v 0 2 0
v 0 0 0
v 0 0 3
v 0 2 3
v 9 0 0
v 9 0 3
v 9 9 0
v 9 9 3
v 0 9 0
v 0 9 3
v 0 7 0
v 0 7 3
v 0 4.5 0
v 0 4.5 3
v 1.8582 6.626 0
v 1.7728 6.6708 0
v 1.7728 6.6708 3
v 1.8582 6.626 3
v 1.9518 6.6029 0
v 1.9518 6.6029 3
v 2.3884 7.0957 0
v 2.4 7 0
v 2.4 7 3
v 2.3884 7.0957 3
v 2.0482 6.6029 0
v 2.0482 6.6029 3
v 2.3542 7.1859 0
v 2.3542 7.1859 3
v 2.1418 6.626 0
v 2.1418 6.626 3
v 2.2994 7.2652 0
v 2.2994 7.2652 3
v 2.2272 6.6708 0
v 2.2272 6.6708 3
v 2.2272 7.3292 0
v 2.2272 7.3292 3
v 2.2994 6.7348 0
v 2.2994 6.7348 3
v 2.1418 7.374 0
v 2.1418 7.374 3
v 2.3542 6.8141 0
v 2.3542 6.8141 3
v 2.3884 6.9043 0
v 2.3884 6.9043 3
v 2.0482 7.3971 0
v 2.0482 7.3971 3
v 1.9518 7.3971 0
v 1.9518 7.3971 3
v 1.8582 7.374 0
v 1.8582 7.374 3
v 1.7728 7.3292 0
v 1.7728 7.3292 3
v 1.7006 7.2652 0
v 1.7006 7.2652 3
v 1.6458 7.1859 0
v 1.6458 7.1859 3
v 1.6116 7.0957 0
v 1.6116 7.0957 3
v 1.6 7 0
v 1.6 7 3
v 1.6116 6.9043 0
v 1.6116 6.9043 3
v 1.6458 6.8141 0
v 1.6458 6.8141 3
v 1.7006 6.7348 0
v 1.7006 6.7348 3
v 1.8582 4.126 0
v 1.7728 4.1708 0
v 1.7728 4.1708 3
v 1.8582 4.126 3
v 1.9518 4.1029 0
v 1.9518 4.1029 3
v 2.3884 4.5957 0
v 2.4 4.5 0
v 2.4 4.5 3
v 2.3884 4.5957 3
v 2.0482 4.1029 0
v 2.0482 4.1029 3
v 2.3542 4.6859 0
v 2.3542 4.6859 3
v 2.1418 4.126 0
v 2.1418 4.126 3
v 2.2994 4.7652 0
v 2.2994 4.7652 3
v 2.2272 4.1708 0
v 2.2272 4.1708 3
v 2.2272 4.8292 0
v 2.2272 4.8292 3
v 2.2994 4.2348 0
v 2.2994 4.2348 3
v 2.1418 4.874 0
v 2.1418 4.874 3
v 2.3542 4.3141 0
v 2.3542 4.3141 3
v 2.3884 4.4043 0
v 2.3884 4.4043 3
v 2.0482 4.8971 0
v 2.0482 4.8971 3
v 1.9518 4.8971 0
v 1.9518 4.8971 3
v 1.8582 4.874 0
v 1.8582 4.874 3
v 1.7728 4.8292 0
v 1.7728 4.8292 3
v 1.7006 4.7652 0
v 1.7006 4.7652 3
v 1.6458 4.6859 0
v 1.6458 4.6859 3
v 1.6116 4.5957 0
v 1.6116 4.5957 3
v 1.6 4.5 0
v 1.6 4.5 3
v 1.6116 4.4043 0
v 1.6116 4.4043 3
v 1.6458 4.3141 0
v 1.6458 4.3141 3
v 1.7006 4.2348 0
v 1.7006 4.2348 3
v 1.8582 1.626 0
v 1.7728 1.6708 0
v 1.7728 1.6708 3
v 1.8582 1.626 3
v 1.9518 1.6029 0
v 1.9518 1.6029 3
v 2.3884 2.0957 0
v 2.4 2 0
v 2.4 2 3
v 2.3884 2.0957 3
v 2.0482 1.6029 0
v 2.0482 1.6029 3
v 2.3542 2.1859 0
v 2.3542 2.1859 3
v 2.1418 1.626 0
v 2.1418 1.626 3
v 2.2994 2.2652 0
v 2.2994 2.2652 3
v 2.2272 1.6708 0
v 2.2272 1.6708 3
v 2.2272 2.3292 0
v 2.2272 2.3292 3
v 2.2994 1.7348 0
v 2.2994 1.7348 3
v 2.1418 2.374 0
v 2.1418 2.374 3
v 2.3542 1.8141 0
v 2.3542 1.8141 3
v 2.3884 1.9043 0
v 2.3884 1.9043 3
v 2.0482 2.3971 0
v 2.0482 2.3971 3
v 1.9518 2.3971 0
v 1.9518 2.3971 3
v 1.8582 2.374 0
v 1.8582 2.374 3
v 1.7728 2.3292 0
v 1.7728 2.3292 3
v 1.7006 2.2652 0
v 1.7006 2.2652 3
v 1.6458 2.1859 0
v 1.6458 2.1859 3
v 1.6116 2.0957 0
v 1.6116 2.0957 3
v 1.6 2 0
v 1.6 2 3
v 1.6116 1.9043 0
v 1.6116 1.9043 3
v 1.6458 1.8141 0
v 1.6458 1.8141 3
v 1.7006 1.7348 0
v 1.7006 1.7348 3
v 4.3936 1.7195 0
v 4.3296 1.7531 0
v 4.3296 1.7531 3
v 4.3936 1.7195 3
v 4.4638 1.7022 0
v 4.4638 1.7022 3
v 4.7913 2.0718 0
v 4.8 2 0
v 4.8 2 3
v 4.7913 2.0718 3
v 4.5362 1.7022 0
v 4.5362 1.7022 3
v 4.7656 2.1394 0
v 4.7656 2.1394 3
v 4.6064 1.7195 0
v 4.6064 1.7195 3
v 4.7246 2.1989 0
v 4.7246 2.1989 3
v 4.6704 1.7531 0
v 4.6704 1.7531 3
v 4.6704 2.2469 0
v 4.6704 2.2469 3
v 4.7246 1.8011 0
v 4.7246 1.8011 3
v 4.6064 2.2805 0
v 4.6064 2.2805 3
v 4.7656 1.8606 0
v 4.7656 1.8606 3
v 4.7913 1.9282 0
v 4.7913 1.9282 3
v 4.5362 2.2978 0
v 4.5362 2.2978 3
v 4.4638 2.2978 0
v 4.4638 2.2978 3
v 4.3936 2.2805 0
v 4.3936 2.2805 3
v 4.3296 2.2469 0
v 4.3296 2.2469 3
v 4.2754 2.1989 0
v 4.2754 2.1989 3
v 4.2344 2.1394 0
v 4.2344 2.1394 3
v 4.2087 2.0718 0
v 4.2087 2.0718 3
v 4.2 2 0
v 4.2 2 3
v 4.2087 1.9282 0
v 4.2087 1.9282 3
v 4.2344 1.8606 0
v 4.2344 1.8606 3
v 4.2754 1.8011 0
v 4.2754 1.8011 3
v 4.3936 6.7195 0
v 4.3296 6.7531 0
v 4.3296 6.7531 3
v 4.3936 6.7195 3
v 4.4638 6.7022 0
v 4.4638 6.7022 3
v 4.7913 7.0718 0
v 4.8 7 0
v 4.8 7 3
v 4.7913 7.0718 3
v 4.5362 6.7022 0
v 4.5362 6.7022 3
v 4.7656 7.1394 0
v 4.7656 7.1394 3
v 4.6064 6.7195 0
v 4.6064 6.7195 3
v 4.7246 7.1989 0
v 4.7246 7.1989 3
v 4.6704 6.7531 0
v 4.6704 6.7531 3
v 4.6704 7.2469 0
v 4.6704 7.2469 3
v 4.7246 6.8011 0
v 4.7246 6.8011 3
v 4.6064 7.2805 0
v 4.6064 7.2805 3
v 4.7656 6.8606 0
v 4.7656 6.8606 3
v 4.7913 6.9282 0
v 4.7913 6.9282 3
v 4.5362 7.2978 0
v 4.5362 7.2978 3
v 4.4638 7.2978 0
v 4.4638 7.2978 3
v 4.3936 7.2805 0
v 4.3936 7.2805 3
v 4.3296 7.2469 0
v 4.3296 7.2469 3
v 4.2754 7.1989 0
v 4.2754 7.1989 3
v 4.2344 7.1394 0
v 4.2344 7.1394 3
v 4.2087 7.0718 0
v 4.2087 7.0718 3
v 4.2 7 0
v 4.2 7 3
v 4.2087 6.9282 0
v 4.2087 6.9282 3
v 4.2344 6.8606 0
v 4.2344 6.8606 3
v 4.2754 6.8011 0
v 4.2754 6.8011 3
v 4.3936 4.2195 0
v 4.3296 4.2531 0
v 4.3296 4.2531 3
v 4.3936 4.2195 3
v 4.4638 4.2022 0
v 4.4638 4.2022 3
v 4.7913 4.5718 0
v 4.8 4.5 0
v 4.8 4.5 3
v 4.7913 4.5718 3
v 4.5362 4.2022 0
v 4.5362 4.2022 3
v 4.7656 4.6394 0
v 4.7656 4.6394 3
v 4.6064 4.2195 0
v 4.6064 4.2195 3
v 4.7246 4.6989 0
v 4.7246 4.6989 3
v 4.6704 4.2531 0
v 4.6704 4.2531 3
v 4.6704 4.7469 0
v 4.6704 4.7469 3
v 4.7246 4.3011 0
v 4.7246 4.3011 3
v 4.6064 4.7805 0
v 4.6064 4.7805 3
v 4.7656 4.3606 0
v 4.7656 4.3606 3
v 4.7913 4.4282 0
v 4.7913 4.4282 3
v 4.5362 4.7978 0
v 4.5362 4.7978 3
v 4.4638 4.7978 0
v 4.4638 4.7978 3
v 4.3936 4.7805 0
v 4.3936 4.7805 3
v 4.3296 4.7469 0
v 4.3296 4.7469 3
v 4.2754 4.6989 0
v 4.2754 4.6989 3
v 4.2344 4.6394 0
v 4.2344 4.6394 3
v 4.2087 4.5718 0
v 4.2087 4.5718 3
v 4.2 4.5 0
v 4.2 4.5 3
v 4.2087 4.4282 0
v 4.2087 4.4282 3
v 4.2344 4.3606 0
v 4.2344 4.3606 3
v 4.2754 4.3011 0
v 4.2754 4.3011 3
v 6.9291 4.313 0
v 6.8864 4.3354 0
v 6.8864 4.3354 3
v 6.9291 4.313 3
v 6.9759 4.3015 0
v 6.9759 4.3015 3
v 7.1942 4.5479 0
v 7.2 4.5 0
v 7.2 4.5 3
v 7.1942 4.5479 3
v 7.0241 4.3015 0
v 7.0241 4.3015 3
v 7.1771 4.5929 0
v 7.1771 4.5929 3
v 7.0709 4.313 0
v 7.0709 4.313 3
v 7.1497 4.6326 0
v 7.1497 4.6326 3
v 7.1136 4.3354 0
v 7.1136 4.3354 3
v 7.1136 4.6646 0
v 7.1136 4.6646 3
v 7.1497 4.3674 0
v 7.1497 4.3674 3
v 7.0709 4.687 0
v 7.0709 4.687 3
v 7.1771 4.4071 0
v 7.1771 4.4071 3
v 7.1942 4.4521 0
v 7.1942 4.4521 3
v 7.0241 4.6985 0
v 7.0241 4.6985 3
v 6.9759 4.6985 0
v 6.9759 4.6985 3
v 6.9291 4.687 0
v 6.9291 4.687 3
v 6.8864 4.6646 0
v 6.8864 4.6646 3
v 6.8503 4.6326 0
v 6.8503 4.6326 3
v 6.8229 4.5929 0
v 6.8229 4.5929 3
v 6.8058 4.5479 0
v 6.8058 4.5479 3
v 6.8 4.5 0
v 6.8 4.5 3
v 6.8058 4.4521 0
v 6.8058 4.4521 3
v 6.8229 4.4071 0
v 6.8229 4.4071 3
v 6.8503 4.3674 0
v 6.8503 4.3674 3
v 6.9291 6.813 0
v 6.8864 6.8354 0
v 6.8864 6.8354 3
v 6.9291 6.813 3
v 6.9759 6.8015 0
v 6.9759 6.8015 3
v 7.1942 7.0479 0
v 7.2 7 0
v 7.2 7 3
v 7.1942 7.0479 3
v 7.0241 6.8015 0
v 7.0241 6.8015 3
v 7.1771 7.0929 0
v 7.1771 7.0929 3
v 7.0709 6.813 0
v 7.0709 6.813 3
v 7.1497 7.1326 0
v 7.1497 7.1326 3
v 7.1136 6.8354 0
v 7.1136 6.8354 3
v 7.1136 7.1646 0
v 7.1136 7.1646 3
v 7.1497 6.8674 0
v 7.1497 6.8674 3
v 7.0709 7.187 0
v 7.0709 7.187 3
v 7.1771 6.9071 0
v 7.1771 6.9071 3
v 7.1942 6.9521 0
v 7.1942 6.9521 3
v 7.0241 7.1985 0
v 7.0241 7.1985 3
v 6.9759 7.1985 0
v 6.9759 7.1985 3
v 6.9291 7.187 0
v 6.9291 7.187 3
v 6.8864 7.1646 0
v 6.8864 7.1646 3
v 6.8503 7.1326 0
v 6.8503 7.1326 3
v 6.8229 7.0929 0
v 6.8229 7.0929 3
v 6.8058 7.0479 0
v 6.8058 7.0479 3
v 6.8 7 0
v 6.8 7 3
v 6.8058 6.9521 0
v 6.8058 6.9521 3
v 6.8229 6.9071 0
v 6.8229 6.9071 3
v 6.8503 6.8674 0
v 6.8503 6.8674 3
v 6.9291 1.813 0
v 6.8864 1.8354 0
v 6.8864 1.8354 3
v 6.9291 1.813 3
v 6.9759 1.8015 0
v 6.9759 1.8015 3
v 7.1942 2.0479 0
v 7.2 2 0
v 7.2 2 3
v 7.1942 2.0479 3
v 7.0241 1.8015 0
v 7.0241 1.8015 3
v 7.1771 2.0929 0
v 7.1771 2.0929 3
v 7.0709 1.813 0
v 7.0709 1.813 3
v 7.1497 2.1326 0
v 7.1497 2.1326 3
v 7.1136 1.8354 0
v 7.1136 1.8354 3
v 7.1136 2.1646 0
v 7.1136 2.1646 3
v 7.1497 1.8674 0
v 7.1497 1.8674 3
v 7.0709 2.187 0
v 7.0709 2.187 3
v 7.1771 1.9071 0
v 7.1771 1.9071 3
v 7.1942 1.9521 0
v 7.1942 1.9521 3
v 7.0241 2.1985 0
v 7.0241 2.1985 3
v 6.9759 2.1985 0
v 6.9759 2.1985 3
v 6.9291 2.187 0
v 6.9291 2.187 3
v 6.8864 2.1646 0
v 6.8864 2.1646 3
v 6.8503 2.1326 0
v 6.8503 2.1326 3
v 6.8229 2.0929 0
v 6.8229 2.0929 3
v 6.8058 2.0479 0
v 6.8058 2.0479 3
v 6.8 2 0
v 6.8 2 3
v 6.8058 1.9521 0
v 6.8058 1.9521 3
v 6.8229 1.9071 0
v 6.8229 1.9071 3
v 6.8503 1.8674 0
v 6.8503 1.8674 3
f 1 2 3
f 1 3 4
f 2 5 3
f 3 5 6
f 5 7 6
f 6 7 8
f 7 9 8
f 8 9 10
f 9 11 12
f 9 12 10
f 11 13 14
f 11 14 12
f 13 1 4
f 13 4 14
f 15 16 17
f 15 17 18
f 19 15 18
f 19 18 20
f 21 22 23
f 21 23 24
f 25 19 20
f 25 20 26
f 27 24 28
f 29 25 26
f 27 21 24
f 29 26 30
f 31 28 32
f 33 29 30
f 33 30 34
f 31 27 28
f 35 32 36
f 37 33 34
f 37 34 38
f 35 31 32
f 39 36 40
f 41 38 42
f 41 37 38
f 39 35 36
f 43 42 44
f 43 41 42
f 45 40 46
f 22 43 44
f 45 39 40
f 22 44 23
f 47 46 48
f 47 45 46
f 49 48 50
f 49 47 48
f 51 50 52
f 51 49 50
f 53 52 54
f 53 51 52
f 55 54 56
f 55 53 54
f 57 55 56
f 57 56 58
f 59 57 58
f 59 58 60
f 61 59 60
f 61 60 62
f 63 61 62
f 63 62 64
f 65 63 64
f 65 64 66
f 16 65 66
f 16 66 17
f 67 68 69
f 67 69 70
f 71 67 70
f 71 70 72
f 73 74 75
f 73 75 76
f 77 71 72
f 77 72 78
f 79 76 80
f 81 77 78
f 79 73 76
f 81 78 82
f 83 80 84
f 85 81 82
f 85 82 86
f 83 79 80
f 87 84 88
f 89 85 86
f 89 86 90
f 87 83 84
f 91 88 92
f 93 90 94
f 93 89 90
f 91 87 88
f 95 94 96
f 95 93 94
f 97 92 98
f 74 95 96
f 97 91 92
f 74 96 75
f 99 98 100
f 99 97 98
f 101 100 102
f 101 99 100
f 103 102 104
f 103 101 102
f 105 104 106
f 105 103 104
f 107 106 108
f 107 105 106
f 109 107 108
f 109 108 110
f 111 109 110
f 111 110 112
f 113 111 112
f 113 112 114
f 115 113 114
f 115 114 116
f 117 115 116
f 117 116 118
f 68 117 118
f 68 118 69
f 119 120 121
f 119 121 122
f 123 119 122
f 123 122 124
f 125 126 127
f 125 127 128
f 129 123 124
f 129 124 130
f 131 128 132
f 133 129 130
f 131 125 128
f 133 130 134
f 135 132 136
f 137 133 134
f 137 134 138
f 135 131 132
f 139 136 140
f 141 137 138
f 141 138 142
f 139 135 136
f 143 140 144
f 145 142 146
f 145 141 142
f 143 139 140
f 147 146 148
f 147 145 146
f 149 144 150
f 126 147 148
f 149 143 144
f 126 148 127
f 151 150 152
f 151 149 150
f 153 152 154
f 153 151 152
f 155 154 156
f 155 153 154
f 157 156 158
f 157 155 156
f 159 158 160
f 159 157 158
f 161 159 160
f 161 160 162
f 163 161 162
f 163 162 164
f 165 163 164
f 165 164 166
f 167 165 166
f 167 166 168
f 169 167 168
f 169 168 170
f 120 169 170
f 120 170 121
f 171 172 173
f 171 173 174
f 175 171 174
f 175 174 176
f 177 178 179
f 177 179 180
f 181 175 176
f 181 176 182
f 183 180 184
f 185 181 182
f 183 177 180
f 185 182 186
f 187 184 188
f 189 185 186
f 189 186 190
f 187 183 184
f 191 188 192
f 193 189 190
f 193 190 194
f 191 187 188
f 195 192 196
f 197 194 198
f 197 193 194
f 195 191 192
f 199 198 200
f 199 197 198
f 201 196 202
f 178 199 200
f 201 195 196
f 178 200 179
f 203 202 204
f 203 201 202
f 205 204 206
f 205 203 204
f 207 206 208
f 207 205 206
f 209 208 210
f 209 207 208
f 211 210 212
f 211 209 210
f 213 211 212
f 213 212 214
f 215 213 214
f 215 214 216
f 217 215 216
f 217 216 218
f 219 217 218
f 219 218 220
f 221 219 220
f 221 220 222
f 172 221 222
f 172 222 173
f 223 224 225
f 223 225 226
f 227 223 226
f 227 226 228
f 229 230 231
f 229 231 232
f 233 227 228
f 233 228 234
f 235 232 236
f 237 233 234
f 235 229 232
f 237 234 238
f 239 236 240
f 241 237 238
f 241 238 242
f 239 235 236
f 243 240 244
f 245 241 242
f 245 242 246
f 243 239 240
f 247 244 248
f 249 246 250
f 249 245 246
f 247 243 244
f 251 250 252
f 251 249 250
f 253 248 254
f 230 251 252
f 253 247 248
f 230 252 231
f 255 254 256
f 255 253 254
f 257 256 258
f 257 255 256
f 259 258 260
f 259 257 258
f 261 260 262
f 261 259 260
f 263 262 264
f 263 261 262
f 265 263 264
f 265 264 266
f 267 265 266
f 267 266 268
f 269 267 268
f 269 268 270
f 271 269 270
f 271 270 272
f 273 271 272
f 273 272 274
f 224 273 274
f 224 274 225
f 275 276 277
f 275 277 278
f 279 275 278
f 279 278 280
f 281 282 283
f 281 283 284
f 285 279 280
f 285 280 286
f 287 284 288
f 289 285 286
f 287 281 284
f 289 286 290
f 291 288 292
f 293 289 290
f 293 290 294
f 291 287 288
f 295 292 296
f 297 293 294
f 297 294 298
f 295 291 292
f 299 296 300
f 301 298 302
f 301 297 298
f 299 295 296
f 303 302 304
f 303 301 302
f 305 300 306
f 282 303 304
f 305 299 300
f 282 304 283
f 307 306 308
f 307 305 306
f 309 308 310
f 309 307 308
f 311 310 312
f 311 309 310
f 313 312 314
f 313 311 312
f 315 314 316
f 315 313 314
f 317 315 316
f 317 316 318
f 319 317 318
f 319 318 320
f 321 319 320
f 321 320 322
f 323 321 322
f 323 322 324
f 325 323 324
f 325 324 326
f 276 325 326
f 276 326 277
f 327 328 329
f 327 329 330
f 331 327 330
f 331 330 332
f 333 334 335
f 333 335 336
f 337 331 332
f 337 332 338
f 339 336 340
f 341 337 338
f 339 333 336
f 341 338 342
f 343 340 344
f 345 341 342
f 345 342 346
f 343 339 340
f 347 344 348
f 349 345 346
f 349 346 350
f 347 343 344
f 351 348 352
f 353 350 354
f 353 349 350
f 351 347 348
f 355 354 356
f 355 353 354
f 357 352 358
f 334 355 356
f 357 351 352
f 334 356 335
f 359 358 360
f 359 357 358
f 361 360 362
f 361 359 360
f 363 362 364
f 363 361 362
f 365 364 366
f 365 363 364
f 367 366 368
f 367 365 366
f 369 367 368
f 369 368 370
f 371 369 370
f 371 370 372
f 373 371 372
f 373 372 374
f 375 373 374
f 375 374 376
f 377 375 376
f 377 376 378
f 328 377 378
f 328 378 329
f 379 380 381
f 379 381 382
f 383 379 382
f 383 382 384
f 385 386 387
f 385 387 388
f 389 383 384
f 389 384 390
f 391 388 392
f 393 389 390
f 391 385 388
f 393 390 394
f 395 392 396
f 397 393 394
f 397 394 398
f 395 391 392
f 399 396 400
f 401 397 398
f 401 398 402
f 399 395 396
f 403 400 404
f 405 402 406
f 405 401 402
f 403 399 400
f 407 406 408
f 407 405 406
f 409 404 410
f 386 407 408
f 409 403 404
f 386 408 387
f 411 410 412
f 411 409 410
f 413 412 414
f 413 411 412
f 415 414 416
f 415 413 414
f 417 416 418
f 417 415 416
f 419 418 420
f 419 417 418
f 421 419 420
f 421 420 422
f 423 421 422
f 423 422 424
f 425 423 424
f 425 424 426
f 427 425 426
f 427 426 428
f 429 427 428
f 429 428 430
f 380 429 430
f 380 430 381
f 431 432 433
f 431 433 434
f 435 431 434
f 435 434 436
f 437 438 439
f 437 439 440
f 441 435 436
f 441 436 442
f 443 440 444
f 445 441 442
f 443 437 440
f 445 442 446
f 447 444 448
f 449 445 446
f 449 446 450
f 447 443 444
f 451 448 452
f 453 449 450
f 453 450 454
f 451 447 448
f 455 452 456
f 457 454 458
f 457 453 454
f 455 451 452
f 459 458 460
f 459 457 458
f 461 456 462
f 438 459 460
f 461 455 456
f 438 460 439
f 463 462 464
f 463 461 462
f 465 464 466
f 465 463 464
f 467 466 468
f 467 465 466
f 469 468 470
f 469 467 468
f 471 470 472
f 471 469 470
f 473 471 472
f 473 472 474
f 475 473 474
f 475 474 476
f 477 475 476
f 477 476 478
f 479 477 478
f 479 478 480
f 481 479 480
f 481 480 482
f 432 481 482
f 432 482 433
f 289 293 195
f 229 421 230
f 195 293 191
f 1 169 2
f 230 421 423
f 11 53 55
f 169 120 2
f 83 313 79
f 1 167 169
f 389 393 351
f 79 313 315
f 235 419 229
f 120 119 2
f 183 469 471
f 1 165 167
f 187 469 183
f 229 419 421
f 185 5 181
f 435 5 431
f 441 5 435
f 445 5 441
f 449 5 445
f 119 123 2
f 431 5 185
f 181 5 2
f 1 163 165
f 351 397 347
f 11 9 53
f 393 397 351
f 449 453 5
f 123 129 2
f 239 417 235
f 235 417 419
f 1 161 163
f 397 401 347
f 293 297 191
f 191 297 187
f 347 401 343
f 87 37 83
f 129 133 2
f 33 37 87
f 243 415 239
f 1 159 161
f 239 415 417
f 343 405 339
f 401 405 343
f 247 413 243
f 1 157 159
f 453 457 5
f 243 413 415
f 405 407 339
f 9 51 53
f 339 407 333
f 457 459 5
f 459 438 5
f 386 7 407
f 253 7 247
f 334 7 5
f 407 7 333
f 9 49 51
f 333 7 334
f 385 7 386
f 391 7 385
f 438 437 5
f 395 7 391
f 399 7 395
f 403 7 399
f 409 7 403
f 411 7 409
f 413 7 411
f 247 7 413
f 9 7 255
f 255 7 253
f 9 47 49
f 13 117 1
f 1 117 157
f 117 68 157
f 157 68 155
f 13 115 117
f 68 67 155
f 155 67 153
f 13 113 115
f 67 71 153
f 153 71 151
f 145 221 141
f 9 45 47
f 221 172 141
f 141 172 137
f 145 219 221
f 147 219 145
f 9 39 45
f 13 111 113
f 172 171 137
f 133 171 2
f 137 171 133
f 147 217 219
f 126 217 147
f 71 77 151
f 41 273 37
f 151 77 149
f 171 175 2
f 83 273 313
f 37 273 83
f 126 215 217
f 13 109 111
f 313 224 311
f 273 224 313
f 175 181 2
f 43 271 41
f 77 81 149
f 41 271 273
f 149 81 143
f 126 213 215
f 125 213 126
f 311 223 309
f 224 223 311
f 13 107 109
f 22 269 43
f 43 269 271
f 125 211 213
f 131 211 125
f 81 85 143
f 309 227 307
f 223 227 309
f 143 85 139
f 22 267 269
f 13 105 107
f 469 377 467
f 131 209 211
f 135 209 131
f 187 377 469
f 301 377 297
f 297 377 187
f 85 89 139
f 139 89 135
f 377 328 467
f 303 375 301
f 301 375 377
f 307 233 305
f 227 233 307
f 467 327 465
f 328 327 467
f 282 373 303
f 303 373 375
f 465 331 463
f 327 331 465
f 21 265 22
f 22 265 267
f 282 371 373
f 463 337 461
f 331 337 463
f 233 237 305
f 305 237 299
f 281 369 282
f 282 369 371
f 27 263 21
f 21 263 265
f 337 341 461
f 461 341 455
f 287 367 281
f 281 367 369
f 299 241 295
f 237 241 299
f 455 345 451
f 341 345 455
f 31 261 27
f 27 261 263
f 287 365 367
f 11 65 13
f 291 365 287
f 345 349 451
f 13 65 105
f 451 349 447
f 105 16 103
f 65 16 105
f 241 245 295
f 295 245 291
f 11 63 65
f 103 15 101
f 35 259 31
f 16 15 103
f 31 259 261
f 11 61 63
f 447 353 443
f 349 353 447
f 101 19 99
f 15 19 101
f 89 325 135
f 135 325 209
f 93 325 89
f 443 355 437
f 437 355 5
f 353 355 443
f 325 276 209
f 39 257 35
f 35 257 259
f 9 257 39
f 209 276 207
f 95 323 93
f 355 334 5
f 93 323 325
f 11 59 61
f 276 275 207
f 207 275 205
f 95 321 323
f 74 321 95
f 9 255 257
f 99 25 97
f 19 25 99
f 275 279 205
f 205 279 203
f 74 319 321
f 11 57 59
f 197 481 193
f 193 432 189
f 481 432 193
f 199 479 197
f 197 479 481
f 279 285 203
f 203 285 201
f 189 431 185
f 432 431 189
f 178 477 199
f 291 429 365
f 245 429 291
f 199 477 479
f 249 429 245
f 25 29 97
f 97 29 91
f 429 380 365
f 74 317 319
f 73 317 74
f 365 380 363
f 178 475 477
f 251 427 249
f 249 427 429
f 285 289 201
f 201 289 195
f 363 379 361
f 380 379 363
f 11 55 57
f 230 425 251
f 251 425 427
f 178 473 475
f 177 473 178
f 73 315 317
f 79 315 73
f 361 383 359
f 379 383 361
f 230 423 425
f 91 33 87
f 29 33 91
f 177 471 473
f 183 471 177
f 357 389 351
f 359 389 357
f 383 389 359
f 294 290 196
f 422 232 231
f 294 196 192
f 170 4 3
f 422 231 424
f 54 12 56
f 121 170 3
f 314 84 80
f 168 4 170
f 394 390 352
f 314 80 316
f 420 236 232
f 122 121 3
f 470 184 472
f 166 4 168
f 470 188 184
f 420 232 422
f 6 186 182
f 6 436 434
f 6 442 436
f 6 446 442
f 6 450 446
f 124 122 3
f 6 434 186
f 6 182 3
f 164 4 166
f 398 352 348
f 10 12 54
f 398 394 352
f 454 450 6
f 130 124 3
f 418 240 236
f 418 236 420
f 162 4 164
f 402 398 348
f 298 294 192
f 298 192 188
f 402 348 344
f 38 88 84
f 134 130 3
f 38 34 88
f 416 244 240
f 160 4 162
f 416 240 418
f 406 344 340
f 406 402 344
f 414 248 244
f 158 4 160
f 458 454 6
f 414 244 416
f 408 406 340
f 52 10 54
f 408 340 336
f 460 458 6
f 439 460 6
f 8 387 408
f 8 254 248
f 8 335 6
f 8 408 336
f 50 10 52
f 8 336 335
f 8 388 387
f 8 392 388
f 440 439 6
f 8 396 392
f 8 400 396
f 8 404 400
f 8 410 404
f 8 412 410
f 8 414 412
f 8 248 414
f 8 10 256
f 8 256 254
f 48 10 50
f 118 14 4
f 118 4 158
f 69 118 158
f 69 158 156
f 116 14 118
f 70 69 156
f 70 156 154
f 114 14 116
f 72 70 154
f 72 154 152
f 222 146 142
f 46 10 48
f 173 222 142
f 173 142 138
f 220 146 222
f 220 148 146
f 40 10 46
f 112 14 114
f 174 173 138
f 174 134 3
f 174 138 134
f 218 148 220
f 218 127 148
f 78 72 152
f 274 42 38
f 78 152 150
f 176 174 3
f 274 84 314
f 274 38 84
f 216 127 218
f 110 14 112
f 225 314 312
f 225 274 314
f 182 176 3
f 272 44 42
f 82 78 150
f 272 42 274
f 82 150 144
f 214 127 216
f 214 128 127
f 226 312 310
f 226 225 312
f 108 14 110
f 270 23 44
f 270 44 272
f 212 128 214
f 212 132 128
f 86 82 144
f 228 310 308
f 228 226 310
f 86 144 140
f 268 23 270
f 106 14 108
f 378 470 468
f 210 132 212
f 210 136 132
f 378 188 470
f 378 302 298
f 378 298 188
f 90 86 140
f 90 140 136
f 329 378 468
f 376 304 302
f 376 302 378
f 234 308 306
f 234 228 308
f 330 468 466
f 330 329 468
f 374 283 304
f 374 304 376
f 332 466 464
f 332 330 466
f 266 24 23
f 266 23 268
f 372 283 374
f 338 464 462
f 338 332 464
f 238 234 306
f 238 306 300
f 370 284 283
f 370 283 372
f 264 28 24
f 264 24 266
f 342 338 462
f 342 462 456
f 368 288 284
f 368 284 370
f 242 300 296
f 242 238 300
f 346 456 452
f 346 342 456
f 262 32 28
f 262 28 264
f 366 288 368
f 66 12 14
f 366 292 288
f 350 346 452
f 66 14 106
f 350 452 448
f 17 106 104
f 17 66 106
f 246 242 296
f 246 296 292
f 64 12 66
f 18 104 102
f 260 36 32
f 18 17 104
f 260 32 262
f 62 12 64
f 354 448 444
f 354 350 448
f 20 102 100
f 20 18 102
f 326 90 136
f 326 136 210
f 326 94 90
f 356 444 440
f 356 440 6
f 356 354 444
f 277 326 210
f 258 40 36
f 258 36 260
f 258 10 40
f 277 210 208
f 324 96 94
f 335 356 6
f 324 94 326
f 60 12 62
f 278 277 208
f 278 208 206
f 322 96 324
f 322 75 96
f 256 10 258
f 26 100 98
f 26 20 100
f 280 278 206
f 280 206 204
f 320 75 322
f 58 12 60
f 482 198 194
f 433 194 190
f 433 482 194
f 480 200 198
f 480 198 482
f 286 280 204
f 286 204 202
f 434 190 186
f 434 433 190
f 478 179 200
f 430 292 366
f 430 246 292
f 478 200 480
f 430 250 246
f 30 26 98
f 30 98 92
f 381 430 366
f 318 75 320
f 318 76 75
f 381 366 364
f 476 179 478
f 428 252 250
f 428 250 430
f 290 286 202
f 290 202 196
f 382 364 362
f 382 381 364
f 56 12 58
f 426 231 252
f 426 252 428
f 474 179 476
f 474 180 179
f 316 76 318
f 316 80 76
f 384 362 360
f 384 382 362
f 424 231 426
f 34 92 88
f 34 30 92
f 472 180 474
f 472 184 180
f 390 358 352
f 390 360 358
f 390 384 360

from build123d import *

# Parameters (mm, degrees)
SKETCH_R   = 0.4
SKETCH_R_2 = 0.3
SKETCH_R_3 = 0.2
PAD_DEPTH  = 3


with BuildPart() as part:
    # Sketch → Pad (new body)
    with BuildSketch(Plane.XY):
        Polygon((0, 0), (9, 0), (9, 9), (0, 9), (0, 7), (0, 4.5), (0, 2), align=None)
        with Locations((2, 2)):
            Circle(SKETCH_R, mode=Mode.SUBTRACT)
        with Locations((4.5, 2)):
            Circle(SKETCH_R_2, mode=Mode.SUBTRACT)
        with Locations((7, 2)):
            Circle(SKETCH_R_3, mode=Mode.SUBTRACT)
        with Locations((2, 4.5)):
            Circle(SKETCH_R, mode=Mode.SUBTRACT)
        with Locations((4.5, 4.5)):
            Circle(SKETCH_R_2, mode=Mode.SUBTRACT)
        with Locations((7, 4.5)):
            Circle(SKETCH_R_3, mode=Mode.SUBTRACT)
        with Locations((2, 7)):
            Circle(SKETCH_R, mode=Mode.SUBTRACT)
        with Locations((4.5, 7)):
            Circle(SKETCH_R_2, mode=Mode.SUBTRACT)
        with Locations((7, 7)):
            Circle(SKETCH_R_3, mode=Mode.SUBTRACT)
    extrude(amount=PAD_DEPTH)


solid = part.part
